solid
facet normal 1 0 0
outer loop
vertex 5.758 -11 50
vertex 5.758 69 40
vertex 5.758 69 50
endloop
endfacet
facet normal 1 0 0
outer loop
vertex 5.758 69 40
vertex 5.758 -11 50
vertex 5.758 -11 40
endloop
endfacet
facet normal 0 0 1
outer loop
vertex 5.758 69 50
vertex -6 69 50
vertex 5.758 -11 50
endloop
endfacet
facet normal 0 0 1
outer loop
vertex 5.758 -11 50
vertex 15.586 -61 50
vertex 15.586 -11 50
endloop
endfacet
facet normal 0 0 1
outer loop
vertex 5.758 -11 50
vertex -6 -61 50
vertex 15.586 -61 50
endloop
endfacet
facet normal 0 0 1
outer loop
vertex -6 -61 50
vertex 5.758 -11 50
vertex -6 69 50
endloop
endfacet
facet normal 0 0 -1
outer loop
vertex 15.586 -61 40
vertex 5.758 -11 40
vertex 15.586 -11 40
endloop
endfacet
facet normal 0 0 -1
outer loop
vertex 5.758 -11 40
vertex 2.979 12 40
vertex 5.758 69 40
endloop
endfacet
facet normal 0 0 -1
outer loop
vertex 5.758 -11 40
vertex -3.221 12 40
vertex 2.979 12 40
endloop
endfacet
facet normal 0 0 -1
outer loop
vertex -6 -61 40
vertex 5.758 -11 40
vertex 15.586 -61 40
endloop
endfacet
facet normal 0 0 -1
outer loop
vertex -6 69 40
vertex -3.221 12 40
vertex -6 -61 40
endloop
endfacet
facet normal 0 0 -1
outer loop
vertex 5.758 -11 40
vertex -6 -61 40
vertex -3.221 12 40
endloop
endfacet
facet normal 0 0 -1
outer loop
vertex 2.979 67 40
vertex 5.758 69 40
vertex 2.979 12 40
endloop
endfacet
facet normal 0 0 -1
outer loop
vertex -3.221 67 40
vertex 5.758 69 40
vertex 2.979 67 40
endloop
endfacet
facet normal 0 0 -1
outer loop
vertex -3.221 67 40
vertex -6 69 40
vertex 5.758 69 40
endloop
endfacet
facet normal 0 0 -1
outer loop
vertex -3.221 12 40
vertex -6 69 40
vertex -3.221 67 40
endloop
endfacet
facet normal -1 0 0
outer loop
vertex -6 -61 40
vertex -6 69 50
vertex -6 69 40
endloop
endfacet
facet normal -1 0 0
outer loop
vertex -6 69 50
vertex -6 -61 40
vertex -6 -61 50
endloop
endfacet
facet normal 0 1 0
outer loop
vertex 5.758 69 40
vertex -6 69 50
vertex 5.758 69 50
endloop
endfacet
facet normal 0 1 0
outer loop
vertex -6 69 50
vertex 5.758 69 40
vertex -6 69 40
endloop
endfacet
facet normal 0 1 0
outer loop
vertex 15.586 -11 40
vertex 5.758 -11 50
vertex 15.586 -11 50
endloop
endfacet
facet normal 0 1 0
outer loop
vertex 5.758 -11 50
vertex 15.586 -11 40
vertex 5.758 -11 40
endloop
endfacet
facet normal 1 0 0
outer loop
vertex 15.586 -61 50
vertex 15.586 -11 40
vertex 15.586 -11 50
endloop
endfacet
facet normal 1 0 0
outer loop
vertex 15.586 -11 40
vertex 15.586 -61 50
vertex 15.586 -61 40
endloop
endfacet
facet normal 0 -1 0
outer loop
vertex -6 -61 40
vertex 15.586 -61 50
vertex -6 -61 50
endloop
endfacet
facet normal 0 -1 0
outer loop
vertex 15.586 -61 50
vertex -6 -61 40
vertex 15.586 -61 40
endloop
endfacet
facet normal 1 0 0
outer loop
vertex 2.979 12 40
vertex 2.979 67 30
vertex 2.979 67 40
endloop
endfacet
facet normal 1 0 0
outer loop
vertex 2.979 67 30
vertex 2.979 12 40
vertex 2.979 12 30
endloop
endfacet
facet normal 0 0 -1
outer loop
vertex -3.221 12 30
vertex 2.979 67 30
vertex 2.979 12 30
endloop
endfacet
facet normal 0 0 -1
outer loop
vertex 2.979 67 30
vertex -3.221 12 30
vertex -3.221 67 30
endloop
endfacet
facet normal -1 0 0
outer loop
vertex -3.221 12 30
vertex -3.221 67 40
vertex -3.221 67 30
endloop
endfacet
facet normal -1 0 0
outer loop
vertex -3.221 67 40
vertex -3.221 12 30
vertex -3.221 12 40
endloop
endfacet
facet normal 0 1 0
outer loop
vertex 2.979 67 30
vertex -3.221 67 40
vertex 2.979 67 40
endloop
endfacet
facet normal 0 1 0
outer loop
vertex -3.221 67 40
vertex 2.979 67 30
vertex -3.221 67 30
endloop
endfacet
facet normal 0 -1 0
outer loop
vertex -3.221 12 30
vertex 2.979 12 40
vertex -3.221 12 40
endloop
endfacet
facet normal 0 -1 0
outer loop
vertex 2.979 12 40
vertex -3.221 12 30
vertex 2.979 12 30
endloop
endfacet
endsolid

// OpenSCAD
// file: snap_lock_v1.scad
//
//  Snap mechanism
//
//  by Egil Kvaleberg
//

// Which part
view = "neither";//"snap";//"both"; 	// [demo, both, snap, bracket]

//
//  main parameters, tune as required:
//

// distance between centers of mount holes that seperate
mount_cc_dist = 12;//20;//35.0; 
mount_cc_width = 9;//17;//32.0;

// thickness of main part
thickness0 = 1.7;
thickness = 4;//2.4;//3.0; 

// mounting screw diameter
screw_dia = 0;//2.5; // BUG: 3.0

screw_head = 2.0*screw_dia;

// tolerance
gap = 0.2; 

//screw_land = screw_dia/2; // land outside of screw head
screw_land = 0;

//snap_width = mount_cc_width - 2*screw_land - screw_head - 2*thickness;  // width of mechanism proper
snap_width = mount_cc_width - 2*thickness0;
//mount_width = mount_cc_width + 2*screw_land + screw_head;
mount_width = mount_cc_width;
//mount_height = 2*screw_land + screw_head;
mount_height = 0;
catch_width = snap_width * 0.15; // in addition to snap_width
snap_bar_width = (snap_width - 2.4 * catch_width) / 2 + 0; // room to flex
catch_min_width = 0.3 * snap_bar_width; // nicely rounded form
//catch_length = (mount_height+mount_cc_dist) / 4;
catch_length = (mount_cc_dist) / 4 + 0;;


d = 1*0.1;
$fs = 0.2;

module rounded_bar(r, h) {
	intersection() {
		cylinder(r=r, h=h);
		translate([0,0, h/2])
		cube([2*r * 0.85, 2*r* 0.85, h], center=true);
/*		hull() {
			translate([0, r, h/2 - r]) rotate([90,0,0]) cylinder(r=r, h=2*r);	
			translate([0, r, -(h/2 - r)]) rotate([90,0,0]) cylinder(r=r, h=2*r);		
		}
*/
	}
}

module screw_hole()
{
	sh = screw_head/2 - (screw_dia/2 + gap);	
	cylinder(r=screw_dia/2 + gap, h = d+thickness+d);
	translate([0, 0, d+thickness-sh])
		cylinder(r1=screw_dia/2 + gap, r2 = screw_head/2, h = sh+d);
}

module snap_half() {
	translate([-mount_width/2, 0, 0]) {
		// screw mount
		difference() {
			cube([mount_width/2 + d, mount_height, thickness]);
			translate([screw_land + screw_head/2, screw_land + screw_head/2, -d]) screw_hole();
		}
	}
	translate([-snap_width/2, 0, 0]) {
		// base arm
		cube([snap_bar_width, mount_height+mount_cc_dist+catch_min_width/2+d, thickness]);

		// catch
		translate([-catch_width, mount_height+mount_cc_dist, 0]) {
			hull() {
				cylinder(r=d, h=thickness); 
				translate([catch_width+snap_bar_width-catch_min_width/2, catch_min_width/2, 0]) 
					cylinder(r=catch_min_width/2, h=thickness); 
				// top of "arrow", sloping inwards to allow more bending
				translate([0.85 * (catch_width+snap_bar_width-catch_min_width/2), catch_length-catch_min_width/2, 0]) 
					cylinder(r=catch_min_width/2, h=thickness); 
			}
			//cube([catch_width, catch_length, thickness]);
		}

	}
}

module snap() {
	snap_half();
	mirror([1, 0, 0]) snap_half();	
}

module bracket_half() {

	translate([-mount_width/2, 0, 0]) {
		// screw mount
		difference() {
			cube([2*screw_land+screw_head+thickness, mount_height, thickness]);
			translate([screw_land + screw_head/2, screw_land + screw_head/2, -d]) screw_hole();
		}
		translate([2*screw_land+screw_head, 0, 0]) {
			cube([thickness, mount_height, thickness + gap + thickness]);
			translate([0, 0, gap + thickness]) {
				cube([snap_width/2 + thickness + d, mount_height, thickness]);
			}
		}

	}
}

module bracket() {
	bracket_half();
	mirror([1, 0, 0]) bracket_half();	
}

if (view == "demo") {
	snap();
	color("Red") translate([0, mount_cc_dist-d, 0]) bracket();
}
if (view == "snap") {
	snap();
}
if (view == "bracket") {
	translate([0, -2, 0]) rotate([90, 0, 0])  bracket();
}
if (view == "both") {
	snap();
	translate([0, -2, 0]) rotate([90, 0, 0])  bracket();
}
// main file
//include <irkem_hammerTips_v0.scad>
include <snap_lock_v1.scad>

xO = -6;
yO = -11;
zO = 40;

kH = 10;//4;
bH = 10;
wL = 50;
bL = 80;
oct = 6.5 * 25.4;
gap = 2;
n_oct = 1;//5;
n_keys = 12;//12 * n_oct;
oset = -1;

kn = 2;

sharpFlag = 0;//1;

ifD = 0;
ifE = 0;
ifF = 0;
ifG = 0;
ifA = 0;
ifB = 0;

for (k = [0:1:(n_keys-1)]){
    //
    //translate([k*13.75+6.0+xO,12+yO,-12.5+zO]) rotate([0,180,0]) hammerTips();
}

for (k = [0:1:(n_oct-1)]){

//if (k==1){
//C:
color("ivory") translate([k*oct+0+xO,0+yO,0+zO]) cube([oct*1/12-gap,bL,kH]);
color("ivory") translate([k*oct+0+xO,-wL+yO,0+zO]) cube([oct*1/7-gap,wL,kH]);
//}

//if (k==2){
//C#:
if (sharpFlag){    
color("black") difference(){
    translate([k*oct+oct*1/12+xO,gap+yO,0+zO]) cube([oct*1/12-gap,bL,kH+bH]);
    rotate([-17,0,0]) translate([k*oct+oct*1/12+xO,gap+yO-10-14,0+zO]) cube([oct*1/12-gap,10,kH+bH]);
}
}
//}

if (ifD){
//D:
color("ivory") translate([k*oct+oct*2/12+xO,0+yO,0+zO]) cube([oct*1/12-gap,bL,kH]);
color("ivory") translate([k*oct+oct*1/7+xO,-wL+yO,0+zO]) cube([oct*1/7-gap,wL,kH]);
}

//if (k==4){
//D#:
if (sharpFlag){
color("black") difference(){
    translate([k*oct+oct*3/12+xO,gap+yO,0+zO]) cube([oct*1/12-gap,bL,kH+bH]);
    rotate([-17,0,0]) translate([k*oct+oct*3/12+xO,gap+yO-10-14,0+zO]) cube([oct*1/12-gap,10,kH+bH]);
}
}
//}

if (ifE){
//E:
color("ivory") translate([k*oct+oct*4/12+xO,0+yO,0+zO]) cube([2+oct*1/12-gap,bL,kH]);
color("ivory") translate([k*oct+oct*2/7+xO,-wL+yO,0+zO]) cube([oct*1/7-gap,wL,kH]);
}

if (ifF){
//F:
color("ivory") difference(){
    translate([k*oct+oct*3/7+xO,-wL+yO,0+zO]) cube([oct*1/7-gap,wL+bL,kH]);
    translate([k*oct+oct*6/12-2+xO,0+yO,0+zO]) cube([4+oct*(1/7-1/12)-gap,bL,kH]);
}
color("ivory") translate([k*oct+oct*3/7+xO,-wL+yO,0+zO]) cube([oct*1/7-gap,wL,kH]);
}

//if (k==7){
//F#:
if (sharpFlag){
color("black") difference(){
    translate([k*oct+oct*6/12+xO,gap+yO,0+zO]) cube([oct*1/12-gap,bL,kH+bH]);
    rotate([-17,0,0]) translate([k*oct+oct*6/12+xO,gap+yO-10-14,0+zO]) cube([oct*1/12-gap,10,kH+bH]);
}
}
//}

if (ifG){
//G:
color("ivory") translate([k*oct+oct*7/12+xO,0+yO,0+zO]) cube([oct*1/12-gap,bL,kH]);
color("ivory") translate([k*oct+oct*4/7+xO,-wL+yO,0+zO]) cube([oct*1/7-gap,wL,kH]);
}

//if (k==9){
//G#:
if (sharpFlag){
color("black") difference(){
    translate([k*oct+oct*8/12+xO,gap+yO,0+zO]) cube([oct*1/12-gap,bL,kH+bH]);
    rotate([-17,0,0]) translate([k*oct+oct*8/12+xO,gap+yO-10-14,0+zO]) cube([oct*1/12-gap,10,kH+bH]);
}
}
//}

if (ifA){
//A:
color("ivory") translate([k*oct+oct*9/12+xO,0+yO,0+zO]) cube([oct*1/12-gap,bL,kH]);
color("ivory") translate([k*oct+oct*5/7+xO,-wL+yO,0+zO]) cube([oct*1/7-gap,wL,kH]);
}

//if (k==11){
//A#:
if (sharpFlag){
color("black") difference(){translate([k*oct+oct*10/12+xO,gap+yO,0+zO]) cube([oct*1/12-gap,bL,kH+bH]);
    rotate([-17,0,0]) translate([k*oct+oct*10/12+xO,gap+yO-10-14,0+zO]) cube([oct*1/12-gap,10,kH+bH]);
}
}
//}

if (ifB){
//B:
color("ivory") translate([k*oct+oct*11/12+xO,0+yO,0+zO]) cube([oct*1/12-gap,bL,kH]);
color("ivory") translate([k*oct+oct*6/7+xO,-wL+yO,0+zO]) cube([oct*1/7-gap,wL,kH]);
}
}

for (i = [0]){//[0,2,4,5,7,9,11]){//(kn-1)){//[0]){//(i = [0,2,4,5,7,9,11]){//[0:1:(n_keys-1)]){
    translate([oset+oct*i/12+(oct*1/12-6.2)/2+xO+0*oct,2+10+yO+12+3-4,-10+zO]) cube([6.2,bL-10-7-12-4+8,10]);
    //translate([0-0.2+oct*i/12+0*oct,-3+13,44-1.8-2]) rotate([-90,0,0]) snap();
    //translate([0-0.2+oct*i/12+0*oct,65,44-1.8-2]) rotate([-90,0,0]) snap();
}

if (sharpFlag){
    for (i = [1,3,6,8,10]){//[0:1:(n_keys-1)]){
    //translate([oset+oct*i/12+(oct*1/12-6.2)/2+xO,2+10+yO,-10+zO]) cube([6.2,bL-10,10]);
        translate([oset+oct*i/12+(oct*1/12-6.2)/2+xO+0*oct,2+10+yO+12+3-4,-10+zO]) cube([6.2,bL-10-7-12-4+8,10]);
    //translate([0-0.2+oct*i/12+0*oct,-3+13,44-1.8-2]) rotate([-90,0,0]) snap();
    //translate([0-0.2+oct*i/12+0*oct,65,44-1.8-2]) rotate([-90,0,0]) snap();
}
}
